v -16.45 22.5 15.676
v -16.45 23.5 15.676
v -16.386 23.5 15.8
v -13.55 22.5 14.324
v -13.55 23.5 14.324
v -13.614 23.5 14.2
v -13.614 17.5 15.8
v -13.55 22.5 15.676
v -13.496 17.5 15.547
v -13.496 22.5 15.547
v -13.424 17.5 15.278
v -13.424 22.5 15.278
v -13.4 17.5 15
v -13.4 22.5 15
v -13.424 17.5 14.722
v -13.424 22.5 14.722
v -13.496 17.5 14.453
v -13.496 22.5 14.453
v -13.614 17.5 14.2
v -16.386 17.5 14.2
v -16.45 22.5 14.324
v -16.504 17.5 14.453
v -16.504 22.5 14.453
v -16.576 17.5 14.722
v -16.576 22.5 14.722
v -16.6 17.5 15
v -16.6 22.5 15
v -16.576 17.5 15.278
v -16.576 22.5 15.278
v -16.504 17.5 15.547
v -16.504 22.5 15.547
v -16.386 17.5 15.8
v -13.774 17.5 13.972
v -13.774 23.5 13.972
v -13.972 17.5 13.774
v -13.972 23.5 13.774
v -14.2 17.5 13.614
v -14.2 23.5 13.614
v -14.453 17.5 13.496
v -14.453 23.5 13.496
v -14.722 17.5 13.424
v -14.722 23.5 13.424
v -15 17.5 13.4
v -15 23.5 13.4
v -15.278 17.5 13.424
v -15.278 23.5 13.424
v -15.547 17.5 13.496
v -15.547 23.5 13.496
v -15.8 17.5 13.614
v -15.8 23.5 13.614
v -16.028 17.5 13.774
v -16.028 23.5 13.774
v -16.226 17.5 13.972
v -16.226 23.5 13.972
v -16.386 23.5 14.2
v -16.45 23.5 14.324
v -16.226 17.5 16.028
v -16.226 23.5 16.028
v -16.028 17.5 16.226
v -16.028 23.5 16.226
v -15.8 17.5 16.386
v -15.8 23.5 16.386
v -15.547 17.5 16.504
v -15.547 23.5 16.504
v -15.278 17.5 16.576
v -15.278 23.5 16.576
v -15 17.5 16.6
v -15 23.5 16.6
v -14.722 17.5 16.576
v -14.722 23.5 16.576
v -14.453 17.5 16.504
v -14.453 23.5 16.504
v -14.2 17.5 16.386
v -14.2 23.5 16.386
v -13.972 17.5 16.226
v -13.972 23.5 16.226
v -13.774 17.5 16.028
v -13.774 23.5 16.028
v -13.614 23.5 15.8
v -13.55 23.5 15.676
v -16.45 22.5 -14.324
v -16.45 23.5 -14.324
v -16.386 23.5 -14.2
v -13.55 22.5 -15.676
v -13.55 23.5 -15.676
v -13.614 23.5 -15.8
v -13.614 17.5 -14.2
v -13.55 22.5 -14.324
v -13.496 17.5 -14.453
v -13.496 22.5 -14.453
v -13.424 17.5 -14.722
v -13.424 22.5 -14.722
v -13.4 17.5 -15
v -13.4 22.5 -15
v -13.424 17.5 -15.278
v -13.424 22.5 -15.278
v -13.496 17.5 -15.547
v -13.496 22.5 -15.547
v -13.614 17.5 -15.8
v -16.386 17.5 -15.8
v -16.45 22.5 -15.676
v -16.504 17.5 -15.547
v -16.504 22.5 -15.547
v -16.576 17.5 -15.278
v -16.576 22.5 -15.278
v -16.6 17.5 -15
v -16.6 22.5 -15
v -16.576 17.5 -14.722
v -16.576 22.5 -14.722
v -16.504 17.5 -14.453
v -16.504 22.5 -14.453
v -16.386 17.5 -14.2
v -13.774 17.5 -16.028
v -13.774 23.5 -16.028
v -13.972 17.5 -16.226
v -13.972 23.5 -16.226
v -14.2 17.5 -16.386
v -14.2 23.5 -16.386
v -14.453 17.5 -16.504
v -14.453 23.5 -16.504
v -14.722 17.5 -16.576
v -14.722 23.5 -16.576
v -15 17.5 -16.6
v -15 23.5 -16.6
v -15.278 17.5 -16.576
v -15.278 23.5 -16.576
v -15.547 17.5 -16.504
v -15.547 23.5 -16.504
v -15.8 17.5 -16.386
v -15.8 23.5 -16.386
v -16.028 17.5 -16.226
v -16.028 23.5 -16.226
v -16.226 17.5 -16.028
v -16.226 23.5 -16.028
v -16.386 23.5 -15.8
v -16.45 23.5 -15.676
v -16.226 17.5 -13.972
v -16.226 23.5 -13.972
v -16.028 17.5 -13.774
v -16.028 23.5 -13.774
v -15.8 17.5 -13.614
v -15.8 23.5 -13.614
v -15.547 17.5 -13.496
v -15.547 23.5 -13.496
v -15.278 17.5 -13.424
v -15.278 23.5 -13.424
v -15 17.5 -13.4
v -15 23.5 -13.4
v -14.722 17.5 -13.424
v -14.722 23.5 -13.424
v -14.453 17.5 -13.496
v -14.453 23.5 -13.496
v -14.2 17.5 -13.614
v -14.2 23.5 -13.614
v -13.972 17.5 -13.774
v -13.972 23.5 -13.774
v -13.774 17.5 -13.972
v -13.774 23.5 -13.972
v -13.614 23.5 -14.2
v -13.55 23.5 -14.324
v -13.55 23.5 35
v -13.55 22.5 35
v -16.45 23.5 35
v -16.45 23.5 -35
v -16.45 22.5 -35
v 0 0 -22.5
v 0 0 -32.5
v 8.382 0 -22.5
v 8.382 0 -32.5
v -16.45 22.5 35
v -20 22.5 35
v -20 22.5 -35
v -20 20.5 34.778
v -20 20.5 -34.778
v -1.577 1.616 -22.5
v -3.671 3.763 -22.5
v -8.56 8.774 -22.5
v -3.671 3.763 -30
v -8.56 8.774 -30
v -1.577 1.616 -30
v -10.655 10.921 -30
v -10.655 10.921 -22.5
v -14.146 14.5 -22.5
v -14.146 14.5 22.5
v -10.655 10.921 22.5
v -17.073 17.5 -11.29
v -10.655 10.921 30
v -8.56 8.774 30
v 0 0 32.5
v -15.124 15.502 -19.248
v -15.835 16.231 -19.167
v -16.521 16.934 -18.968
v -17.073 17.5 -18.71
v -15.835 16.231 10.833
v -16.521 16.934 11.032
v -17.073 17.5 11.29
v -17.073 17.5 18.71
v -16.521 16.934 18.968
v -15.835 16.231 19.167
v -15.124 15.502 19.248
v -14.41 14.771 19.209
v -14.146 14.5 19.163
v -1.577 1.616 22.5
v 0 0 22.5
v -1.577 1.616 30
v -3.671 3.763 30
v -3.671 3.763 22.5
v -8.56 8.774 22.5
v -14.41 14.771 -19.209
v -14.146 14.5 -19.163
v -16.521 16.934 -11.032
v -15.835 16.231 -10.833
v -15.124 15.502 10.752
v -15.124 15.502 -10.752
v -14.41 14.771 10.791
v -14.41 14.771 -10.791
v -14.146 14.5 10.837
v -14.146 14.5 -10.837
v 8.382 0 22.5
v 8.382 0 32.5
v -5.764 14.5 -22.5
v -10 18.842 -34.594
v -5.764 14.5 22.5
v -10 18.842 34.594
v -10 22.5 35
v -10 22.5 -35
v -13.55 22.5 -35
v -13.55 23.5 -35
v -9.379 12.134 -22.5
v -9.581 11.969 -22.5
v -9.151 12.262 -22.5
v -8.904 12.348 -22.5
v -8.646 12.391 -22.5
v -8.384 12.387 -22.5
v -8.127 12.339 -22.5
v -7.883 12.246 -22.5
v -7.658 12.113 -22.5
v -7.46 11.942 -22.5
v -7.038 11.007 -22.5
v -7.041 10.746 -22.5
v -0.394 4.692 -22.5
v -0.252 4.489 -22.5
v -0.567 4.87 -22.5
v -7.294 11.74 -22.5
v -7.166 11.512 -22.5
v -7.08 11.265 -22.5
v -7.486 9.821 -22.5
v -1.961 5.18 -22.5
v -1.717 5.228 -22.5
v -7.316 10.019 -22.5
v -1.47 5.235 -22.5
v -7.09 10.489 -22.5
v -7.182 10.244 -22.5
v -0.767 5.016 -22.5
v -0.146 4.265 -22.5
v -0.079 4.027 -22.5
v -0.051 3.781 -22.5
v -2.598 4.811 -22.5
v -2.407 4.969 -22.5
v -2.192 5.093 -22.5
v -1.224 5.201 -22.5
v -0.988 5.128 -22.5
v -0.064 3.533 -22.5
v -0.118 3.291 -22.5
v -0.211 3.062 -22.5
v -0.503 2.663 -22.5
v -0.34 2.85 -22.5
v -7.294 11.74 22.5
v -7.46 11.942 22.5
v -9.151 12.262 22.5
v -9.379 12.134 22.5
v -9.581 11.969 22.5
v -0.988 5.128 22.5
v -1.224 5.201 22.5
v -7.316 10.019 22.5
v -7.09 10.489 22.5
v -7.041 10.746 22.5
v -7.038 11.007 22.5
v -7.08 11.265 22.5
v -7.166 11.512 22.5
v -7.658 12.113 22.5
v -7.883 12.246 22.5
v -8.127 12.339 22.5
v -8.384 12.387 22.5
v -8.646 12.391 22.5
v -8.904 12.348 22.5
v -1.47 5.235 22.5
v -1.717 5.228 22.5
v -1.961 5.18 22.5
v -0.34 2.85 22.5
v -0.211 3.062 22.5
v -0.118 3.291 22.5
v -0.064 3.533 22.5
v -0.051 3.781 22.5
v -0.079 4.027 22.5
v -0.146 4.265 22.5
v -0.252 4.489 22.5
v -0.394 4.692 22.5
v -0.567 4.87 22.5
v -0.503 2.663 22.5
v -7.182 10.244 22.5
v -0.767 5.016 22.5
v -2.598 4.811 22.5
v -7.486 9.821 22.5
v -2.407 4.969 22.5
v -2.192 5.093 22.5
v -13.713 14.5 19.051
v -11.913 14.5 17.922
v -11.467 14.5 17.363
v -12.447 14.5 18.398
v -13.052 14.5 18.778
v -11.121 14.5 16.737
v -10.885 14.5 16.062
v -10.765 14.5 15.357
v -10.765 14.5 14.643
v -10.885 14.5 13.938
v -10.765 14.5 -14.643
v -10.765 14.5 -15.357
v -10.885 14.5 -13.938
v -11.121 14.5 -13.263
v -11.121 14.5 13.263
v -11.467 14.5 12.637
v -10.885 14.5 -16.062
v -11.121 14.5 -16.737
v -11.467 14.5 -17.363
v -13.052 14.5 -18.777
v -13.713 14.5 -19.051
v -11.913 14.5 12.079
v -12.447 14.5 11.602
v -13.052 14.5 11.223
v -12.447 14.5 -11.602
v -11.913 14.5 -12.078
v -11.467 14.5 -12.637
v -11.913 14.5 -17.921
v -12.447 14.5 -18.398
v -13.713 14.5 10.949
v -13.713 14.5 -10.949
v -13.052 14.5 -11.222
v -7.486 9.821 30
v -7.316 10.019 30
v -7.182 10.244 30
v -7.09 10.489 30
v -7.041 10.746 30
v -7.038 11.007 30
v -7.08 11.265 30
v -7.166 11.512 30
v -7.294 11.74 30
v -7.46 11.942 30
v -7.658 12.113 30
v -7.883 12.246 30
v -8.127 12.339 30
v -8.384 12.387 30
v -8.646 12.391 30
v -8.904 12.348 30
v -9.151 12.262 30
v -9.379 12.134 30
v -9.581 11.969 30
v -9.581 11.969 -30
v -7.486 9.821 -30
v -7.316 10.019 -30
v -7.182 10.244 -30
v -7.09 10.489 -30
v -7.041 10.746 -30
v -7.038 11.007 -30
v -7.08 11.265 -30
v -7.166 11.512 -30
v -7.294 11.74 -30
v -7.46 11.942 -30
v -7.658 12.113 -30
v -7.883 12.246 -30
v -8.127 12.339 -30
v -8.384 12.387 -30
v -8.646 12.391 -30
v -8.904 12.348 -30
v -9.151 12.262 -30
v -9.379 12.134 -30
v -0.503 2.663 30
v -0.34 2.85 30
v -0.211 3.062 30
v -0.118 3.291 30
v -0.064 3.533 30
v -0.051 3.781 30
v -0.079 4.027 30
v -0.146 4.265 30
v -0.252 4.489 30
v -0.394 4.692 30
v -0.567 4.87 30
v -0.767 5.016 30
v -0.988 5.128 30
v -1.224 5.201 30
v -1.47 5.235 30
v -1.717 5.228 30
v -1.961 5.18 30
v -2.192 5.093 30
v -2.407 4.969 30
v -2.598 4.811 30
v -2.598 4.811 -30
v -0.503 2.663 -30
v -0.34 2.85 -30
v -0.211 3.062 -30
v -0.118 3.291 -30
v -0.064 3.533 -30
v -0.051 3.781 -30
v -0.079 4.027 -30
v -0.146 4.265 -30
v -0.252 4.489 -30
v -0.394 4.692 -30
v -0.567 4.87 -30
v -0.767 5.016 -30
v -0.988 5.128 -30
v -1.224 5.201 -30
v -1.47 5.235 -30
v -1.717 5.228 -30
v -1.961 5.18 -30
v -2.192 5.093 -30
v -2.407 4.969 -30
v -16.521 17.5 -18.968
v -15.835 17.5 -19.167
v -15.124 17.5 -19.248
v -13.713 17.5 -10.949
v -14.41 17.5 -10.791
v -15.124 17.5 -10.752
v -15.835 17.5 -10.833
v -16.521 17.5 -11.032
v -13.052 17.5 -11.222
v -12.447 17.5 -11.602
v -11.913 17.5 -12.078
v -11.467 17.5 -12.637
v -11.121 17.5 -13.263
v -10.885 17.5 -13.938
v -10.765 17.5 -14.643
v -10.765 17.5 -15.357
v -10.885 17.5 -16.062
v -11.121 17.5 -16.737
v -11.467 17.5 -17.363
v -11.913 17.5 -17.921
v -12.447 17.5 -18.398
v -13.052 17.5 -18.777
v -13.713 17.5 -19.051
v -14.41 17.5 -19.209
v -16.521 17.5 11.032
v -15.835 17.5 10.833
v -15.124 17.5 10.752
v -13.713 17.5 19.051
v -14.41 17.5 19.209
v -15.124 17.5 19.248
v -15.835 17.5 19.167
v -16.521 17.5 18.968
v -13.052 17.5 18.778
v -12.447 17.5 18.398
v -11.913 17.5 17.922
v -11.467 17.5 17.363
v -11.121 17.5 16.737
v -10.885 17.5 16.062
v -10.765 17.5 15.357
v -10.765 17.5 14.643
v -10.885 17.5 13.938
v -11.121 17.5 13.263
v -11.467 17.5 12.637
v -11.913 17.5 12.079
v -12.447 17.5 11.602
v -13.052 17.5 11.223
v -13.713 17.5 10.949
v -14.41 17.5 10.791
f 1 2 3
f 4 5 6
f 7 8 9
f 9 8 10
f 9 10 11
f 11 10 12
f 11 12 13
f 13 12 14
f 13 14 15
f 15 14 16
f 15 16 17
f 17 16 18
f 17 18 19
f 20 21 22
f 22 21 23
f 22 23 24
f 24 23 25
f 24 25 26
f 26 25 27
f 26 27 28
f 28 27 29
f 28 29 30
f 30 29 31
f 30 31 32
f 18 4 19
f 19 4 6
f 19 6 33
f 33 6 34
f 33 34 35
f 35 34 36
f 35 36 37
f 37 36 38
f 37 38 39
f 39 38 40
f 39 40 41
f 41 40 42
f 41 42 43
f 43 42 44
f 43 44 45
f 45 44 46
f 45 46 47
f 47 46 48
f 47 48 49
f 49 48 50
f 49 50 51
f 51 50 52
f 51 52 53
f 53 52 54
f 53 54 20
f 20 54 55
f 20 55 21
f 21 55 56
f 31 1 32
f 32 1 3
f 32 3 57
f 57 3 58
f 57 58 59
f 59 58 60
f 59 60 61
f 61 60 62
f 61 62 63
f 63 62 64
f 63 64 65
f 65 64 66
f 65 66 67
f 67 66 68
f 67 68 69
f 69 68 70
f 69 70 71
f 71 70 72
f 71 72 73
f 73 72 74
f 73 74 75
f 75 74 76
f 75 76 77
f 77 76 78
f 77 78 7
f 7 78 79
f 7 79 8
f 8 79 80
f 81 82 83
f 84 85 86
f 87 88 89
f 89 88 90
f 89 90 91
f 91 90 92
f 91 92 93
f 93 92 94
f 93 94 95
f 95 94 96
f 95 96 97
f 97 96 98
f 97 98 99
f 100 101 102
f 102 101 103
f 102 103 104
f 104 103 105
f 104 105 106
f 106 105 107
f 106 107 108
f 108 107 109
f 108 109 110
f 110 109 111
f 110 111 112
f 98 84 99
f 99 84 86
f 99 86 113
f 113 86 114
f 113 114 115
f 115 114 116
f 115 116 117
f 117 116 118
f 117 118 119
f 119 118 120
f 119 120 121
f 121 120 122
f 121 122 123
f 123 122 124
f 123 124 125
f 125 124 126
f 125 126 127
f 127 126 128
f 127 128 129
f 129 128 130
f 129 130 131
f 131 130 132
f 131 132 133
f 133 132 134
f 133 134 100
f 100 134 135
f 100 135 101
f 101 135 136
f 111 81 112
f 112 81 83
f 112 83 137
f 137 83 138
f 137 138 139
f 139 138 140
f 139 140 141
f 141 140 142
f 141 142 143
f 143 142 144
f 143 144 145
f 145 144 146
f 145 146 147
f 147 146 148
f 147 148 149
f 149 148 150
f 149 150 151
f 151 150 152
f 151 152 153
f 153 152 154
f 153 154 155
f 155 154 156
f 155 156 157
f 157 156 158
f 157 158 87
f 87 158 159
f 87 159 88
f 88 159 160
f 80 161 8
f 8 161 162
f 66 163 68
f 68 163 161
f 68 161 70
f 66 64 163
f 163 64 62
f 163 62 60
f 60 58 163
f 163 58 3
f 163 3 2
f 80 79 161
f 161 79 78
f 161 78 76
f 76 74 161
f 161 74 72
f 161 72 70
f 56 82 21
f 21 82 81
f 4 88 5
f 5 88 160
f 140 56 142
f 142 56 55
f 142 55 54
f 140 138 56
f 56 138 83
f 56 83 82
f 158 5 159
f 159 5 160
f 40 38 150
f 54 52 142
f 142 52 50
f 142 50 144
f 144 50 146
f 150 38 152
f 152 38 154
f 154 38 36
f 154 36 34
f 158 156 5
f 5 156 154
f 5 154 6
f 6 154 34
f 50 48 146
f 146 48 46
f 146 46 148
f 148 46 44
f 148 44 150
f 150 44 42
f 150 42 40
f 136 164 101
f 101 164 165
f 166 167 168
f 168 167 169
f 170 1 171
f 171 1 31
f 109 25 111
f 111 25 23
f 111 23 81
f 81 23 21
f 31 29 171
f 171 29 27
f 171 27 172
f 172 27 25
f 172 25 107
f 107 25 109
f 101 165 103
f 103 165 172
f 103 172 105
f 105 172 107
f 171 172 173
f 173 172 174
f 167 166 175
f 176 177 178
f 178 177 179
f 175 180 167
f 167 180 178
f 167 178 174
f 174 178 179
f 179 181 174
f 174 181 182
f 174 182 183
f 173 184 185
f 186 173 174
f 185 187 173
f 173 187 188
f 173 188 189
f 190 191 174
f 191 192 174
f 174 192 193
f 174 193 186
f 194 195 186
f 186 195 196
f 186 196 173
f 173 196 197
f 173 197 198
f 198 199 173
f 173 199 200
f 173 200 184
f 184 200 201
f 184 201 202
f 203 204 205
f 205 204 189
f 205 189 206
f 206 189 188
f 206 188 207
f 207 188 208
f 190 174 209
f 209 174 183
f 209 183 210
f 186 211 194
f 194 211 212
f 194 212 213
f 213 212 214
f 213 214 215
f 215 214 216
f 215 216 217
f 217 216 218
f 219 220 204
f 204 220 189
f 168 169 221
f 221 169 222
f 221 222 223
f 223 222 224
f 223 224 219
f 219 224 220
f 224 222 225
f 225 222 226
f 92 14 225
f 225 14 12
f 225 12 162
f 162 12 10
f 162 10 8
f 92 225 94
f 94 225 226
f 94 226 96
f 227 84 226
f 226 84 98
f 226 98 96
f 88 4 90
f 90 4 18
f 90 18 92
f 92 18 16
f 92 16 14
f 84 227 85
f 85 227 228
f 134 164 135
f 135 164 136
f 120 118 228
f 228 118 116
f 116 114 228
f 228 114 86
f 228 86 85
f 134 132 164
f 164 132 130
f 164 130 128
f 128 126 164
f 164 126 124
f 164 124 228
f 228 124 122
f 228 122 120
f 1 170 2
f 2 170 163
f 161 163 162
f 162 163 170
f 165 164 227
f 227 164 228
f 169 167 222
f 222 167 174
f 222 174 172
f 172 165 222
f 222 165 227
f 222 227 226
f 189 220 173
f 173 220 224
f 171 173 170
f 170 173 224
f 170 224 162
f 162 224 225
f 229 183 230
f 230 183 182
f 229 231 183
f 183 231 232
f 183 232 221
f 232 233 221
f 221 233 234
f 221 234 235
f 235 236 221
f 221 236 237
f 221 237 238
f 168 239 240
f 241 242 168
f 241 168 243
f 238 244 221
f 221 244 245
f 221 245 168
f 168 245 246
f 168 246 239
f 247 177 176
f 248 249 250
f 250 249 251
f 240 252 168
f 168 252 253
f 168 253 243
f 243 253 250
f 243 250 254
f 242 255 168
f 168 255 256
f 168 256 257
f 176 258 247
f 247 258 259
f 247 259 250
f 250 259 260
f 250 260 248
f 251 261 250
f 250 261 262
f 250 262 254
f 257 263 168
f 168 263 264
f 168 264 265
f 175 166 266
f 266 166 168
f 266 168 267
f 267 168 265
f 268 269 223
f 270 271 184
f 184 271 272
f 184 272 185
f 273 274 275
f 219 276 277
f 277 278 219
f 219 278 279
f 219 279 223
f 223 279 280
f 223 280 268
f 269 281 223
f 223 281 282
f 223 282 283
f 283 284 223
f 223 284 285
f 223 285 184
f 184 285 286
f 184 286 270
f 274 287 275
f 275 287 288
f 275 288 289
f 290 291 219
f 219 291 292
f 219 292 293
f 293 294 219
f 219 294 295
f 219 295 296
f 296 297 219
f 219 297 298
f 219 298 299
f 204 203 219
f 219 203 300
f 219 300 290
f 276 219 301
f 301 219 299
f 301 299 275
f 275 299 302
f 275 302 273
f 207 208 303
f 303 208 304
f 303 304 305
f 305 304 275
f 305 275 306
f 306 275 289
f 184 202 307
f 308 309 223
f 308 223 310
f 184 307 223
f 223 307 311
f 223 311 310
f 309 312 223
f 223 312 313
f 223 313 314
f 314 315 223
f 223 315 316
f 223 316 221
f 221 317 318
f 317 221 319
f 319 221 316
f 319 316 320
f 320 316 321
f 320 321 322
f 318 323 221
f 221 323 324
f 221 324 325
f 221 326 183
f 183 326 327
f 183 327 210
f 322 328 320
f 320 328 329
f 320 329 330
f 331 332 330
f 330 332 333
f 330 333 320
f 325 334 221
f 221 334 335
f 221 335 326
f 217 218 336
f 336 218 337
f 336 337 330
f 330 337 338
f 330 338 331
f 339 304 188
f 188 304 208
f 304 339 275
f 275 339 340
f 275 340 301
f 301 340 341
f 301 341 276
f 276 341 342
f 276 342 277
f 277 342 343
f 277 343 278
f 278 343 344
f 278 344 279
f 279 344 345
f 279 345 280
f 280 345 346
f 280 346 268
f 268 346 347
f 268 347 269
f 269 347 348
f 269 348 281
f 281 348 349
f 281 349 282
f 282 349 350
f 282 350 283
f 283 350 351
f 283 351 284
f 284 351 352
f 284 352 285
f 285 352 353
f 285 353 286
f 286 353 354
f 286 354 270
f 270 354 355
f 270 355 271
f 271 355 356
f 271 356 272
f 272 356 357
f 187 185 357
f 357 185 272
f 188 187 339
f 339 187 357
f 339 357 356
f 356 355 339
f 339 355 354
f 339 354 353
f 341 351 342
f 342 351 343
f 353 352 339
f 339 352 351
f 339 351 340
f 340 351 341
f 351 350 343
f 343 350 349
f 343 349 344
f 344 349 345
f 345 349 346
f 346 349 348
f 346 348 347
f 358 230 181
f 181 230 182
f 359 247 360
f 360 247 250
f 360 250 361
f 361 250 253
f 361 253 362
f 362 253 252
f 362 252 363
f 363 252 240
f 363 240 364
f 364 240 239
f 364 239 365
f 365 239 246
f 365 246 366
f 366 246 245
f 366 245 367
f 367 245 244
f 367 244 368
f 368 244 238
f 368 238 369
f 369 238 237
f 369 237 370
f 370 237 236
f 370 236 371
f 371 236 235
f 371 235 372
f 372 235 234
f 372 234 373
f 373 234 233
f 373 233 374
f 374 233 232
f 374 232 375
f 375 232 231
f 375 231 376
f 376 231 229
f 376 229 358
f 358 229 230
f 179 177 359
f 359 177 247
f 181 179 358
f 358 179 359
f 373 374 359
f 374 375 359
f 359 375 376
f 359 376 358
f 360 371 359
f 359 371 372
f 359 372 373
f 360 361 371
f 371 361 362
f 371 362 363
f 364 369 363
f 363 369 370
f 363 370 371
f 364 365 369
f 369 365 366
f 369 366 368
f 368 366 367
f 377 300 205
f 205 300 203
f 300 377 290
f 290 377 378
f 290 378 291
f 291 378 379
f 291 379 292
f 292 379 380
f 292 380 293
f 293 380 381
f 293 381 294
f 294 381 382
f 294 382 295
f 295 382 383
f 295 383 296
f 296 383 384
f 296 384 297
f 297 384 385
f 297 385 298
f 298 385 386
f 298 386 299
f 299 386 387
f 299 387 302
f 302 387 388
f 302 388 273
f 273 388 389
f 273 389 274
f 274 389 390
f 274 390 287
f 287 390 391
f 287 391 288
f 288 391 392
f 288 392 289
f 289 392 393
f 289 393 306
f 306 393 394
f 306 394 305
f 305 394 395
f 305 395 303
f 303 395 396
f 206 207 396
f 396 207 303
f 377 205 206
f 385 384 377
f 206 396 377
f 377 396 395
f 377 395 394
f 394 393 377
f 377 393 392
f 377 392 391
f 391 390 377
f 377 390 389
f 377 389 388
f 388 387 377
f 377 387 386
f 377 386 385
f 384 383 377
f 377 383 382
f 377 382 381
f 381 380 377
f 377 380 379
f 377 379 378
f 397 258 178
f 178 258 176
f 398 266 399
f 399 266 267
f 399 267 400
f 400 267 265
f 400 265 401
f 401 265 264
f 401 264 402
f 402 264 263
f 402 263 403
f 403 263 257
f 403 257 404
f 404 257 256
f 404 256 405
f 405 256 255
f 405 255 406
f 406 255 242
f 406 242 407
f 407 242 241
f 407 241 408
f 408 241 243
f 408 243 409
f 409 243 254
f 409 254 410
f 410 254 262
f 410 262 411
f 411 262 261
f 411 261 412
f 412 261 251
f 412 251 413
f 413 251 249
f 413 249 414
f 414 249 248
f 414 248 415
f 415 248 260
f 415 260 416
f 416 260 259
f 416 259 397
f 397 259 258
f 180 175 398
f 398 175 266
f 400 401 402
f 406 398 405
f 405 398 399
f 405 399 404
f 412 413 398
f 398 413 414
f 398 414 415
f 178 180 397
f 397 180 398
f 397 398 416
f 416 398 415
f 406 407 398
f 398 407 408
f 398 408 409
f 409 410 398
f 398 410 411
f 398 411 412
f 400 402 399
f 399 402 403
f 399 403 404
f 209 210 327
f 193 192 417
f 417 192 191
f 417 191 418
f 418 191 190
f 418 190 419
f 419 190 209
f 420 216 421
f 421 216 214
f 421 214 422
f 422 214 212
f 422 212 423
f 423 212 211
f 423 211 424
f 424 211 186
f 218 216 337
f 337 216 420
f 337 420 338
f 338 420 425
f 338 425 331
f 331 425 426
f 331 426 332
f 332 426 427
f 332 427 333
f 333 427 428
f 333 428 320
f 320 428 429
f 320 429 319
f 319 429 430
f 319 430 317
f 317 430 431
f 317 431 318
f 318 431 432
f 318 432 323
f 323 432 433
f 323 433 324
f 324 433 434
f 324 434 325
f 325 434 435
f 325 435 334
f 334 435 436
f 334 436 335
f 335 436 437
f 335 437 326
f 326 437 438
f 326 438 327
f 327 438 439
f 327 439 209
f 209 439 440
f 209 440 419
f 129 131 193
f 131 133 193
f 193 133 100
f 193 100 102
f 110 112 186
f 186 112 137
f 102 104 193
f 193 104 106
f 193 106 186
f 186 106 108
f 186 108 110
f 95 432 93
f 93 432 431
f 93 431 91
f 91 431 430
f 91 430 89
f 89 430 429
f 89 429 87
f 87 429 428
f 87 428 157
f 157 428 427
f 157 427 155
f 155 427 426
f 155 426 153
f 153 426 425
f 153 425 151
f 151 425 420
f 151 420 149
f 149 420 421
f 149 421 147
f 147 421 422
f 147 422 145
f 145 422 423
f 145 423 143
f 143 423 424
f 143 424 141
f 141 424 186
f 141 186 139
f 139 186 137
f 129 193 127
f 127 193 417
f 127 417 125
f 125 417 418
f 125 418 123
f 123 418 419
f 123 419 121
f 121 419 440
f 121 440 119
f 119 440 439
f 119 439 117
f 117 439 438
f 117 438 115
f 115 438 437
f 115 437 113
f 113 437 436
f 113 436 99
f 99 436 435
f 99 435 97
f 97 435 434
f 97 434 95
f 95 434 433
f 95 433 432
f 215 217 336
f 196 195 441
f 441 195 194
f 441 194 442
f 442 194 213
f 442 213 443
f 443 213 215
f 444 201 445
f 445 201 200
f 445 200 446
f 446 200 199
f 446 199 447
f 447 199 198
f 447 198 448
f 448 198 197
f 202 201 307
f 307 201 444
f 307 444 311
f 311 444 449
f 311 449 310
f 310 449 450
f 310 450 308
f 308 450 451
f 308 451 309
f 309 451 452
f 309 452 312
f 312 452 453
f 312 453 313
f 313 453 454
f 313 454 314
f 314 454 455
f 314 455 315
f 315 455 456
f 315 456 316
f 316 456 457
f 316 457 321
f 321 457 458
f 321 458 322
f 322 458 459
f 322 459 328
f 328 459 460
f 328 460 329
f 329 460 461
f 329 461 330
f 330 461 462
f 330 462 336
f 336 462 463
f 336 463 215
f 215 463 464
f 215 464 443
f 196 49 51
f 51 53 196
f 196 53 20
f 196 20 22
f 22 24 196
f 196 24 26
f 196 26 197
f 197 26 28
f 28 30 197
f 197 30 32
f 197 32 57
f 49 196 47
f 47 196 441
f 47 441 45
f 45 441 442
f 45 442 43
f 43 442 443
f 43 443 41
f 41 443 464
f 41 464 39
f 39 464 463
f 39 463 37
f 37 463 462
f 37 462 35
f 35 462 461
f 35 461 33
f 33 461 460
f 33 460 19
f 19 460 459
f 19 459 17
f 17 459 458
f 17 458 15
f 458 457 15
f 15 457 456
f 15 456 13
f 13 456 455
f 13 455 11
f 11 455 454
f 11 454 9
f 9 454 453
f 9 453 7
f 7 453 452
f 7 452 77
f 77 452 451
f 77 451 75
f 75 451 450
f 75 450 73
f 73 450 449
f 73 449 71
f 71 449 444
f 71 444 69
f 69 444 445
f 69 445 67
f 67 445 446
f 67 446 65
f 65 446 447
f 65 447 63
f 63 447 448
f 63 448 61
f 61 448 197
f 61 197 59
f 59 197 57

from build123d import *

# Parameters (mm, degrees)
MAIN_DEPTH                   = 35
SIDECUT_DEPTH                = 9.382441068
SIDECUT_DEPTH_BACK           = 21
SKETCH5_W                    = 45
SKETCH5_H                    = 60
CENTRALCUT_DEPTH             = 9.382441068
CENTRALCUT_DEPTH_BACK        = 21
SKETCH3_R                    = 1.6
MAKERBEAMFIXHOLES_DEPTH      = 1
MAKERBEAMFIXHOLES_DEPTH_BACK = 24.5
ROLLERSUPPORTHOLES_DEPTH     = 30
LPATTERN1_COUNT              = 3
LPATTERN1_PITCH              = 10
SKETCH6_R                    = 4.25
SCREWHOLE_DEPTH              = 3


with BuildPart() as part:
    # Sketch1 → Main (new body, symmetric)
    with BuildSketch(Plane.XY):
        Polygon((-10, 22.5), (-10, 18.842002095), (8.382441068, 0), (0, 0), (-20, 20.5), (-20, 22.5), (-16.45, 22.5), (-16.45, 23.5), (-13.55, 23.5), (-13.55, 22.5), align=None)
    extrude(amount=MAIN_DEPTH, both=True)

    # Sketch2 → SideCut (cut, two sides)
    with BuildSketch(Plane(origin=(0, 12.071067812, 0), x_dir=(0, 0, 1), z_dir=(1, 0, 0))) as sidecut_sk:
        Polygon((-35, -10.428932188), (-32.5, 12.071067812), (-35, 12.071067812), align=None)
        Polygon((35, -10.428932188), (35, 12.071067812), (32.5, 12.071067812), align=None)
    extrude(amount=SIDECUT_DEPTH, mode=Mode.SUBTRACT)
    extrude(sidecut_sk.sketch, amount=-SIDECUT_DEPTH_BACK, mode=Mode.SUBTRACT)

    # Sketch5 → CentralCut (cut, two sides)
    with BuildSketch(Plane(origin=(0, 0, 0), x_dir=(0, 0, 1), z_dir=(1, 0, 0))) as centralcut_sk:
        with Locations((0, 15.5)):
            Rectangle(SKETCH5_W, SKETCH5_H)
    extrude(amount=CENTRALCUT_DEPTH, mode=Mode.SUBTRACT)
    extrude(centralcut_sk.sketch, amount=-CENTRALCUT_DEPTH_BACK, mode=Mode.SUBTRACT)

    # Sketch3 → MakerBeamFixHoles (cut, two sides)
    with BuildSketch(Plane(origin=(0, 23.5, 0), x_dir=(1, 0, 0), z_dir=(0, 1, 0))) as makerbeamfixholes_sk:
        with Locations((-15, 15)):
            Circle(SKETCH3_R)
        with Locations((-15, -15)):
            Circle(SKETCH3_R)
    extrude(amount=MAKERBEAMFIXHOLES_DEPTH, mode=Mode.SUBTRACT)
    extrude(makerbeamfixholes_sk.sketch, amount=-MAKERBEAMFIXHOLES_DEPTH_BACK, mode=Mode.SUBTRACT)

    # Sketch4 → RollerSupportHoles (cut, symmetric)
    with BuildSketch(Plane.XY):
        with BuildLine():
            Line((-10.654722203, 10.921090258), (-8.559750647, 8.773744413))
            Line((-8.559750647, 8.773744413), (-7.486077724, 9.821230191))
            ThreePointArc((-7.486077724, 9.821230191), (-7.45989058, 11.942388892), (-9.58104928, 11.968576036))
            Line((-9.58104928, 11.968576036), (-10.654722203, 10.921090258))
        make_face()
    rollersupportholes = extrude(amount=ROLLERSUPPORTHOLES_DEPTH, both=True, mode=Mode.SUBTRACT)

    # LPattern1: RollerSupportHoles ×3
    with Locations(*[Vector(0.698323852, -0.715781948, 0) * (i * LPATTERN1_PITCH) for i in range(1, LPATTERN1_COUNT)]):
        add(rollersupportholes, mode=Mode.SUBTRACT)

    # Sketch6 → ScrewHole (cut)
    with BuildSketch(Plane(origin=(0, 14.5, 0), x_dir=(-1, 0, 0), z_dir=(0, -1, 0))):
        with Locations((15, 15)):
            Circle(SKETCH6_R)
        with Locations((15, -15)):
            Circle(SKETCH6_R)
    extrude(amount=-SCREWHOLE_DEPTH, mode=Mode.SUBTRACT)


solid = part.part
